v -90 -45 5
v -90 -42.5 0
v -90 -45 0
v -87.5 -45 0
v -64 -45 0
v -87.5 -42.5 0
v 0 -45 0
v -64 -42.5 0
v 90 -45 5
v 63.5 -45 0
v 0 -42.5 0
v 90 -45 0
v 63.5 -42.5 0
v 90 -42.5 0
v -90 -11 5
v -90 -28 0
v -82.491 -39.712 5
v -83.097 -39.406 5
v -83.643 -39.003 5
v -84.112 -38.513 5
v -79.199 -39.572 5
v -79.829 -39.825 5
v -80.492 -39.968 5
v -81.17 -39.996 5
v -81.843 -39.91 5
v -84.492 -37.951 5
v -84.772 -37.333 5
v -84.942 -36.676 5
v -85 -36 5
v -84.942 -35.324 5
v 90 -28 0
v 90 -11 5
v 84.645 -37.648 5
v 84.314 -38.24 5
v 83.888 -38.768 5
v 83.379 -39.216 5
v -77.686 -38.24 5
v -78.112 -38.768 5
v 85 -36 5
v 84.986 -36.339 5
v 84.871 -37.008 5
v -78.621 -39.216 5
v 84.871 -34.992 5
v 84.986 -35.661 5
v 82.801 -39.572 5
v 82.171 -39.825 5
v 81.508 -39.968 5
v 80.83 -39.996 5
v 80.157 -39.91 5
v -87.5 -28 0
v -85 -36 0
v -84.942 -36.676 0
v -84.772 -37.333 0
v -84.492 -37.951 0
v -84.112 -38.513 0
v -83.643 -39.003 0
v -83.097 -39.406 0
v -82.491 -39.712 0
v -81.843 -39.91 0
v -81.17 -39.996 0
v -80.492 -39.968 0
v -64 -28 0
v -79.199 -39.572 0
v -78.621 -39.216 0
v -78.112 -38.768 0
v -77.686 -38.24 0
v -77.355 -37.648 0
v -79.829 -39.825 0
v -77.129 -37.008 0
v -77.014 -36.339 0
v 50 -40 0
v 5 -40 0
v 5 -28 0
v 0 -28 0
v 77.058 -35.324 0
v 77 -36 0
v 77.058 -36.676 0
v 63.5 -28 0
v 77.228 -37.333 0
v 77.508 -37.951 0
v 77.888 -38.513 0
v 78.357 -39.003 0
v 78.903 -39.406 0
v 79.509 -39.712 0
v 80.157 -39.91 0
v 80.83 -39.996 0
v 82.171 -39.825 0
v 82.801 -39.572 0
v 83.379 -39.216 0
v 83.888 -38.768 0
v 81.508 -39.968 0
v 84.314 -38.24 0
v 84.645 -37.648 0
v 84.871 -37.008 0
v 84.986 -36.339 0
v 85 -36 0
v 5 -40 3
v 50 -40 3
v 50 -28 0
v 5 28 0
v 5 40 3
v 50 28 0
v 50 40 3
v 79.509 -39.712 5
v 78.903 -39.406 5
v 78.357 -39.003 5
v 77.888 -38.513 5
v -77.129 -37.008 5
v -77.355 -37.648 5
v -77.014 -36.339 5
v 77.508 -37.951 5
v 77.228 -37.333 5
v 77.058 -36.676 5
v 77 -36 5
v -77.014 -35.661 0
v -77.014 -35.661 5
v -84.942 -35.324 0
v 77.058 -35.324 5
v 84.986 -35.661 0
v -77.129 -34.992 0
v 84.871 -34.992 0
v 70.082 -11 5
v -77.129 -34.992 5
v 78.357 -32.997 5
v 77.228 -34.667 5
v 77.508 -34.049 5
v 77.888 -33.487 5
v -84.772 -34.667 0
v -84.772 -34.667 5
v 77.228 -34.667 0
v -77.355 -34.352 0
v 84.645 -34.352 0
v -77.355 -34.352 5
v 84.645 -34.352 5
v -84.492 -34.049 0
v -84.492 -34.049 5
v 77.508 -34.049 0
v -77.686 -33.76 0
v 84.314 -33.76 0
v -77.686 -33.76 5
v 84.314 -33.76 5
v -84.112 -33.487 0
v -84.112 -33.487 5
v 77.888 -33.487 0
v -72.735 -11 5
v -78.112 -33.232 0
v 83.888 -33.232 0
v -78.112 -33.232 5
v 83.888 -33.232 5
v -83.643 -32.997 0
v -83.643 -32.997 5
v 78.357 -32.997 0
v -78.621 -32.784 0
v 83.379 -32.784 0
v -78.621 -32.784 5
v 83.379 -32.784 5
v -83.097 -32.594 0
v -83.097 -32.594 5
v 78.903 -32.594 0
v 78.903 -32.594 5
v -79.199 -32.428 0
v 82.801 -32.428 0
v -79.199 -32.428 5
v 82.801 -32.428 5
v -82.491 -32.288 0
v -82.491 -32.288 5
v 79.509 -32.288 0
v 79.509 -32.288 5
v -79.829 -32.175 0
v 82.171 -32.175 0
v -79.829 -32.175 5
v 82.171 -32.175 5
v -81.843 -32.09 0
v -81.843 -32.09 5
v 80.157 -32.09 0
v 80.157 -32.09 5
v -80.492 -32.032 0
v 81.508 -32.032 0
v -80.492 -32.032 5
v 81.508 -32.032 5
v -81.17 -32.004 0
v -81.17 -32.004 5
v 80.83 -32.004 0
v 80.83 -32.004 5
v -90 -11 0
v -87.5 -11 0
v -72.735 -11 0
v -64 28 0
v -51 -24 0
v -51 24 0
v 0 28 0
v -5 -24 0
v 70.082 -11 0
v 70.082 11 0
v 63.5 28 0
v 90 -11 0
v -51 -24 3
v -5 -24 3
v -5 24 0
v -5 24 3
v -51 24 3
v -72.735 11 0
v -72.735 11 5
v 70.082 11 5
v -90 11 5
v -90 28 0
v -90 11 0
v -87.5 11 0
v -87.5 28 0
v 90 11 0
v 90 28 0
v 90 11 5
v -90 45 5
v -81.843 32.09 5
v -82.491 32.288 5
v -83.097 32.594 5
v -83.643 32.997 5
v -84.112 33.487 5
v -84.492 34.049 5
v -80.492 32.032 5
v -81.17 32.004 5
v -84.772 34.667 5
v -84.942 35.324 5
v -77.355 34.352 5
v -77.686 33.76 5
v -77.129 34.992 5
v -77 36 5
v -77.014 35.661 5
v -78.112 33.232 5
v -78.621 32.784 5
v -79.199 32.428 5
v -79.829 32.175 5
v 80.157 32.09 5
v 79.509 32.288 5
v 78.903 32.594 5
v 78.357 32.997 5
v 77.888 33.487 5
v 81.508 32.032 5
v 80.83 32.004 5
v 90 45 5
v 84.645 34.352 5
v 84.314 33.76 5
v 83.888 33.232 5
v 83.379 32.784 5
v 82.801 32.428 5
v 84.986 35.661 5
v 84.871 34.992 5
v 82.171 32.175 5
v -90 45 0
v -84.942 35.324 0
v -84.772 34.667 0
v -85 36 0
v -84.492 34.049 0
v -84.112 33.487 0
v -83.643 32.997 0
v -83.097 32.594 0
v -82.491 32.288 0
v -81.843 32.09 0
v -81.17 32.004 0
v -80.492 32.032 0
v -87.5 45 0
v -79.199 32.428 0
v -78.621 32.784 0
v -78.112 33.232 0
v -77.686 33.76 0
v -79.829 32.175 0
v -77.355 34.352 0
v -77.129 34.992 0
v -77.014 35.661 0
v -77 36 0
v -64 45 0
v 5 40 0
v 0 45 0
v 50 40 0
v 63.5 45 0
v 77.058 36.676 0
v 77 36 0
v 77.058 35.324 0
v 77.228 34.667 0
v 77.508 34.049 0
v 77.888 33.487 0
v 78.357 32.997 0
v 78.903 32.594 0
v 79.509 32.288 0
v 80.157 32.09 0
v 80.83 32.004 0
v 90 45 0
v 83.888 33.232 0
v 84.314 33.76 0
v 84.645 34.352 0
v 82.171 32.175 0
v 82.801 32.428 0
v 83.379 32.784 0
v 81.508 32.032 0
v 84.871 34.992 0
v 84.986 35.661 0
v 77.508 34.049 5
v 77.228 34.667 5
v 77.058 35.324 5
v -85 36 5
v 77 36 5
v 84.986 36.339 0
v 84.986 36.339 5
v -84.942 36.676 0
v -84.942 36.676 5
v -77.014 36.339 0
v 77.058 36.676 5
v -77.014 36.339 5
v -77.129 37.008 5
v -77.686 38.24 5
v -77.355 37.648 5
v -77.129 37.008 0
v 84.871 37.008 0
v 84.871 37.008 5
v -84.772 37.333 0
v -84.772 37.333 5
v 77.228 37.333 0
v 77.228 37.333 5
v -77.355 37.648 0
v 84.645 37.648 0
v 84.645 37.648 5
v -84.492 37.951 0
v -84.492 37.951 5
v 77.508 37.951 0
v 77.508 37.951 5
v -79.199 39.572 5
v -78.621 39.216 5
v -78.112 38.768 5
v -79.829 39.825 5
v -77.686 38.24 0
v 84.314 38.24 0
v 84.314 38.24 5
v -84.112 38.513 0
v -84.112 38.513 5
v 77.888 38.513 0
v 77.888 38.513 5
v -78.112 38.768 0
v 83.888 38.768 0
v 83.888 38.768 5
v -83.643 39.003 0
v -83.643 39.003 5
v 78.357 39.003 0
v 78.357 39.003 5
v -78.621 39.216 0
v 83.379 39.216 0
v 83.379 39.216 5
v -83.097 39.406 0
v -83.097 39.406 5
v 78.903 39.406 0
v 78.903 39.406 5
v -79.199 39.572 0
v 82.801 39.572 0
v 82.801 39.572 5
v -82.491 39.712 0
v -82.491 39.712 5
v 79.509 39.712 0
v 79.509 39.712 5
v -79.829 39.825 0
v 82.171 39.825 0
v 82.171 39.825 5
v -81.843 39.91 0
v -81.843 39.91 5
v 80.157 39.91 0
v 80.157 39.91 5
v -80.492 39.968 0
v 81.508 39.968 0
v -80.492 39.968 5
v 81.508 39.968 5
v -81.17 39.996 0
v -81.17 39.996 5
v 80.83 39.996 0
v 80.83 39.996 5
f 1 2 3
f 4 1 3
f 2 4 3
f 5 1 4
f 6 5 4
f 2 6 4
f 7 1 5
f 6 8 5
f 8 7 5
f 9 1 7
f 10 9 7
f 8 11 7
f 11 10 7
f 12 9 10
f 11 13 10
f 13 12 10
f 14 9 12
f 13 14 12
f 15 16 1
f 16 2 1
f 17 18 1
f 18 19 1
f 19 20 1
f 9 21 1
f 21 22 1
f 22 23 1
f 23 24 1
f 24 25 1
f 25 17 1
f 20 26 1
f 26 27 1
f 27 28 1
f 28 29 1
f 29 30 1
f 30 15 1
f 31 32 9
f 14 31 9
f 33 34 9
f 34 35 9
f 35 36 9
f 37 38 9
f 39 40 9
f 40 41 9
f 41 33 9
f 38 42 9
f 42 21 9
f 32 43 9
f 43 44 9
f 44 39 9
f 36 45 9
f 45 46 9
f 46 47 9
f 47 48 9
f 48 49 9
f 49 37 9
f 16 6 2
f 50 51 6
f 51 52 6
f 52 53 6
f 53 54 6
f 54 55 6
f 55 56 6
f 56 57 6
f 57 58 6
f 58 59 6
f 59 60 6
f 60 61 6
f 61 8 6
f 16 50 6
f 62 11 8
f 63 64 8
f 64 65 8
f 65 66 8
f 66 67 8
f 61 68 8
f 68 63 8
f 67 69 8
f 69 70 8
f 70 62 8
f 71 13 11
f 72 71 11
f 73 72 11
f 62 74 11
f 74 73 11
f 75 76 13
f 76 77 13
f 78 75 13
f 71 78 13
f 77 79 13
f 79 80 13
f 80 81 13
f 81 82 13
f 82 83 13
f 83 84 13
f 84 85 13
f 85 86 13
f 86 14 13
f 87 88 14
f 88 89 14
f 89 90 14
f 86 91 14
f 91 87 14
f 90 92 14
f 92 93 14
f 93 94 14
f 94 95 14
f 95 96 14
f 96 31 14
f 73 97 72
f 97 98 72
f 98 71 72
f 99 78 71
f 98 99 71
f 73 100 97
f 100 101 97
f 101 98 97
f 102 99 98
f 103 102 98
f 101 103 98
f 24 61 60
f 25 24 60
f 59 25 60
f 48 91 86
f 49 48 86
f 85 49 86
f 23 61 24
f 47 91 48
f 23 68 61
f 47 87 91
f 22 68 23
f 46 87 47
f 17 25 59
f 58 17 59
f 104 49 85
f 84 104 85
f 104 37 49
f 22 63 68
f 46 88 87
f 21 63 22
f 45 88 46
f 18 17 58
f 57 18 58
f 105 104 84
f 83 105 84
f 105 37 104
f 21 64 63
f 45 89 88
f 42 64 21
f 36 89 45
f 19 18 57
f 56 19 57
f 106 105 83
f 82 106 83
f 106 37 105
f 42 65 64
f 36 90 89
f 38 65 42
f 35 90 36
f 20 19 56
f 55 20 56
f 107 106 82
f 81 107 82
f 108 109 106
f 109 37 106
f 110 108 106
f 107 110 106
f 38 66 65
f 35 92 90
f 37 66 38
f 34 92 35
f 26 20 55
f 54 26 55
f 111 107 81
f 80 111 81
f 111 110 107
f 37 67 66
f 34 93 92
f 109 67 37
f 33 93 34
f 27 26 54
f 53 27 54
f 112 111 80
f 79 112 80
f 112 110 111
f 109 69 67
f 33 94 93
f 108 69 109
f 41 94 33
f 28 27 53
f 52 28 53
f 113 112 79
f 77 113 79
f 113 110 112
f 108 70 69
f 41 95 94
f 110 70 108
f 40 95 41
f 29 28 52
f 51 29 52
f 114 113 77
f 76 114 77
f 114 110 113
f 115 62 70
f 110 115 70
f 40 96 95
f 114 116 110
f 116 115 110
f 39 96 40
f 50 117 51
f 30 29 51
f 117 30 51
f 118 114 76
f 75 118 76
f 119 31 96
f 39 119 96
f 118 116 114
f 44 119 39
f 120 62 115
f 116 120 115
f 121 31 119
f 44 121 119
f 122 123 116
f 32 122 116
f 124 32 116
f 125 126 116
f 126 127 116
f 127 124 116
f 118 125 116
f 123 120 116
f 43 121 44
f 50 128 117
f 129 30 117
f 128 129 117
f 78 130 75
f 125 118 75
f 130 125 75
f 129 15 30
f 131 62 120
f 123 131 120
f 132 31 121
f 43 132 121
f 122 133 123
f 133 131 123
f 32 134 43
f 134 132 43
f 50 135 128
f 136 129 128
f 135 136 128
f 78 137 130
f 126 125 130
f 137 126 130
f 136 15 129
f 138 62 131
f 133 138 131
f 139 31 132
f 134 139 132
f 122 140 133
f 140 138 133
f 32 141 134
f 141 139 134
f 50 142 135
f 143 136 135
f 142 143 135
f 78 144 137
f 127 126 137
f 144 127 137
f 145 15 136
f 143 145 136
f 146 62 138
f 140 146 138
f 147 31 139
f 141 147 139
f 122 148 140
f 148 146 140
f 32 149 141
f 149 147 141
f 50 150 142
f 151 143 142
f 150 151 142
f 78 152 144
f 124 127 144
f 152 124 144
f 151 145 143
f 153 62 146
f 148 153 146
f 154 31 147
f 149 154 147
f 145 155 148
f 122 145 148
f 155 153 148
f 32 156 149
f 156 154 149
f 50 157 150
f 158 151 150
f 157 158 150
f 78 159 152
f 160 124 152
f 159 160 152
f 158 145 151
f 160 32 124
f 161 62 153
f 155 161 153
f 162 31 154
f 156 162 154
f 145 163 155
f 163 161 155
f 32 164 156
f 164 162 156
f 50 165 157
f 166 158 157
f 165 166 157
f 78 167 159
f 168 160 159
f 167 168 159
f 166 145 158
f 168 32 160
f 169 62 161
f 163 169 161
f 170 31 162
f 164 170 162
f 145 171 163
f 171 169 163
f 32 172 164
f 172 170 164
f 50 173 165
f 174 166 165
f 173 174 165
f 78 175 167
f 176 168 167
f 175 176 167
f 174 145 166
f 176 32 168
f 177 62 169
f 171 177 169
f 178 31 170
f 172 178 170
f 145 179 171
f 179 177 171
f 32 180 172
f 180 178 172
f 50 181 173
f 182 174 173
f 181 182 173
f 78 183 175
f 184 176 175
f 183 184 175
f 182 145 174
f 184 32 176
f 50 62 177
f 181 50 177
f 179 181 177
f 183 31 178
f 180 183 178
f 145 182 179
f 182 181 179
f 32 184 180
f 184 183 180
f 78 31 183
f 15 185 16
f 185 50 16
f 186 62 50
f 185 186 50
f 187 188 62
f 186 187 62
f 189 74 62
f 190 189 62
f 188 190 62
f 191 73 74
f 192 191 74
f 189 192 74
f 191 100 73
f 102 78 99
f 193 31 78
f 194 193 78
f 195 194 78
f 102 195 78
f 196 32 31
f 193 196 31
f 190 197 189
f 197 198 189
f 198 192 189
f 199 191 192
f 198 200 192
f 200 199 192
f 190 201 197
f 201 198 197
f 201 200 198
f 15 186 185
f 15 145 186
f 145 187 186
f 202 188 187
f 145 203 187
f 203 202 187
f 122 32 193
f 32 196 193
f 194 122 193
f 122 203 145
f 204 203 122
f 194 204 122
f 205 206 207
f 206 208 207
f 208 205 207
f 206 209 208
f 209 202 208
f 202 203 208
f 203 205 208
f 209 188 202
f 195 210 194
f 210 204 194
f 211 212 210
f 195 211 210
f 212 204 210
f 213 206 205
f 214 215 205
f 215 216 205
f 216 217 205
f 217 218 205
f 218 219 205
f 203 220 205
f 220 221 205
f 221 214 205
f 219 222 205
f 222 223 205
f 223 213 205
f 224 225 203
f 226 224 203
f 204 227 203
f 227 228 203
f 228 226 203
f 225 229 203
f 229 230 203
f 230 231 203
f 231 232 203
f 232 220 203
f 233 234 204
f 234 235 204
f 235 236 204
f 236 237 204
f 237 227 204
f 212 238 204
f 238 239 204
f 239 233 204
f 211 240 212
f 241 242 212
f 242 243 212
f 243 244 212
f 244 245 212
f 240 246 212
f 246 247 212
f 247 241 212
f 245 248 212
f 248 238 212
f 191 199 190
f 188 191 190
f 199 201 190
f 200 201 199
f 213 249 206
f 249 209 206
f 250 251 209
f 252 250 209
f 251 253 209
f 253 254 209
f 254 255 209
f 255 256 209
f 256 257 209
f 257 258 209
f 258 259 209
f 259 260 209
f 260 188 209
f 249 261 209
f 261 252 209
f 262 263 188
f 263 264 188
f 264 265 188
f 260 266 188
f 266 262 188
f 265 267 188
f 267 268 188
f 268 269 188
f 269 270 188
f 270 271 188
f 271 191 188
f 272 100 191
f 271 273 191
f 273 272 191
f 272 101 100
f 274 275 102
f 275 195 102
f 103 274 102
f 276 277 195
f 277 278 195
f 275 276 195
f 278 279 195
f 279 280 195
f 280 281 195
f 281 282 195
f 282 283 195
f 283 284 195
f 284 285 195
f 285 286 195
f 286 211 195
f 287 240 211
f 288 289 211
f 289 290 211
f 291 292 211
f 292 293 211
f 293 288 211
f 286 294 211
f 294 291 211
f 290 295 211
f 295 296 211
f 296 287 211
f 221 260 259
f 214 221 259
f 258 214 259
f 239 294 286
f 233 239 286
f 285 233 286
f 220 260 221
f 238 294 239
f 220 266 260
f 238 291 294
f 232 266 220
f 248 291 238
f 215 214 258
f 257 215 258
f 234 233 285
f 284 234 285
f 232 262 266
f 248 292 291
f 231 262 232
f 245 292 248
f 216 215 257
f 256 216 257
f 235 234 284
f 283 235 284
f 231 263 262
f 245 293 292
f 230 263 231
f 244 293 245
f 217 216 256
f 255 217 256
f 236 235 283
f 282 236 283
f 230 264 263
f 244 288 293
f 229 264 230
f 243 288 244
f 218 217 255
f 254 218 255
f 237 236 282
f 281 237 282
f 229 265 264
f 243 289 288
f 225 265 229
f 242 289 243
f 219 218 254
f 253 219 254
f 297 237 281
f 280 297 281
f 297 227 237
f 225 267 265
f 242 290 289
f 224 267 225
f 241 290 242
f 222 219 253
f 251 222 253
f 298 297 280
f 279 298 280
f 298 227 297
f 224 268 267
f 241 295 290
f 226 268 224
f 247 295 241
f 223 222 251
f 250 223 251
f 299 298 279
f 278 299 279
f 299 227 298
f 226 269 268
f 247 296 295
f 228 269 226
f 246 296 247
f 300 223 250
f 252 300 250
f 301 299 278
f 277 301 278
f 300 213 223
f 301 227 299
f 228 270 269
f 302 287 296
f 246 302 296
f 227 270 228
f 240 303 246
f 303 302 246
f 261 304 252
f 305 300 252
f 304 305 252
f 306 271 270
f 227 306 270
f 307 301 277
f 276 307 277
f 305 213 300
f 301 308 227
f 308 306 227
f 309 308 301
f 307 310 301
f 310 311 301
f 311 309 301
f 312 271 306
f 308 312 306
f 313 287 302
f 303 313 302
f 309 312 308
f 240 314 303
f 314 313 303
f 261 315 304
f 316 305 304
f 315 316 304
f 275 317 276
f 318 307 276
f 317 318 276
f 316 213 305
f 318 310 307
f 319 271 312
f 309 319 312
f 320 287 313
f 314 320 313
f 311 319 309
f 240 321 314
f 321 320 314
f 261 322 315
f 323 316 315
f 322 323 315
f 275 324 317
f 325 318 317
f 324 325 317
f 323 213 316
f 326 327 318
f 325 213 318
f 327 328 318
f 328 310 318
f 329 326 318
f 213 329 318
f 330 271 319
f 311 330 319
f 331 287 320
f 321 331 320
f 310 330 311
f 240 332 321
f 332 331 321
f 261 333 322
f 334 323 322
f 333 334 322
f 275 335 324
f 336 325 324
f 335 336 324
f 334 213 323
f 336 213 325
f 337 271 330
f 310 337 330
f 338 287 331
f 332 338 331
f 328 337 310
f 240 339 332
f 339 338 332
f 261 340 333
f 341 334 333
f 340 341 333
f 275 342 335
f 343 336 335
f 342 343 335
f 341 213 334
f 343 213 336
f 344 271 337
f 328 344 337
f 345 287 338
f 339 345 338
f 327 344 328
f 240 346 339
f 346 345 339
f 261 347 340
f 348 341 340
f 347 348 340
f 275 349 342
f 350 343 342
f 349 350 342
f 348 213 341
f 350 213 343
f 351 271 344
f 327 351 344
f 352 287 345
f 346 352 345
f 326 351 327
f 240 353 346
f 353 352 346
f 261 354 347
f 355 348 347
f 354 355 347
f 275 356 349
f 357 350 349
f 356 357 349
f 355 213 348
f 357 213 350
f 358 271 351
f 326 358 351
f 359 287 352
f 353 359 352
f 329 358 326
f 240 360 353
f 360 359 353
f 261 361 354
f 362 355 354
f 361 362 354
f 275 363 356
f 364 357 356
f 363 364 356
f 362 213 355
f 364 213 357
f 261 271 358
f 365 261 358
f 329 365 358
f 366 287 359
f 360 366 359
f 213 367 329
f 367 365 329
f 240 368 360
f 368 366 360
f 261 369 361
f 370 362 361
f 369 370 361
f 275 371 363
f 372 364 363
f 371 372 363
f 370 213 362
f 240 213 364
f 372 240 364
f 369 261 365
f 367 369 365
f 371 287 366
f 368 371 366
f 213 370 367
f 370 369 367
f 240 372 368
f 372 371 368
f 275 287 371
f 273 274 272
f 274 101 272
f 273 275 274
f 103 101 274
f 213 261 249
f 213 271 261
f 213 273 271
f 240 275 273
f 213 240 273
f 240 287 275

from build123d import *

# Parameters (mm, degrees)
SKETCH1_W           = 180
SKETCH1_H           = 90
BOSS_EXTRUDE1_DEPTH = 5
SKETCH5_W           = 15.917599426
SKETCH5_H           = 22
SKETCH5_W_2         = 13.264666189
CUT_EXTRUDE3_DEPTH  = 101.747208398
SKETCH7_W           = 4
SKETCH7_H           = 22
CUT_EXTRUDE13_DEPTH = 101.747208398
SKETCH8_R           = 4
CUT_EXTRUDE14_DEPTH = 101.747208398
SKETCH9_W           = 45
SKETCH9_H           = 80
CUT_EXTRUDE15_DEPTH = 3
SKETCH10_W          = 46
SKETCH10_H          = 48
CUT_EXTRUDE16_DEPTH = 3


with BuildPart() as part:
    # Sketch1 → Boss-Extrude1 (new body)
    with BuildSketch(Plane.XY):
        Rectangle(SKETCH1_W, SKETCH1_H)
    extrude(amount=BOSS_EXTRUDE1_DEPTH)

    # Sketch5 → Cut-Extrude3 (cut, through all)
    with BuildSketch(Plane(origin=(0, 0, 0), x_dir=(-1, 0, 0), z_dir=(0, 0, -1))):
        with Locations((-82.041200287, 0)):
            Rectangle(SKETCH5_W, SKETCH5_H)
        with Locations((83.367666906, 0)):
            Rectangle(SKETCH5_W_2, SKETCH5_H)
    extrude(amount=-CUT_EXTRUDE3_DEPTH, mode=Mode.SUBTRACT)

    # Sketch7 → Cut-Extrude13 (cut, through all)
    with BuildSketch(Plane(origin=(0, 0, 0), x_dir=(-1, 0, 0), z_dir=(0, 0, -1))):
        with Locations((-72.082400574, 0)):
            Rectangle(SKETCH7_W, SKETCH7_H)
        with Locations((74.735333811, 0)):
            Rectangle(SKETCH7_W, SKETCH7_H)
    extrude(amount=-CUT_EXTRUDE13_DEPTH, mode=Mode.SUBTRACT)

    # Sketch8 → Cut-Extrude14 (cut, through all)
    with BuildSketch(Plane(origin=(0, 0, 0), x_dir=(-1, 0, 0), z_dir=(0, 0, -1))):
        with Locations((-81, 36)):
            Circle(SKETCH8_R)
        with Locations(Location((81, 36, 0), (0, 0, 180))):
            Circle(SKETCH8_R)
        with Locations((81, -36)):
            Circle(SKETCH8_R)
        with Locations(Location((-81, -36, 0), (0, 0, 180))):
            Circle(SKETCH8_R)
    extrude(amount=-CUT_EXTRUDE14_DEPTH, mode=Mode.SUBTRACT)

    # Sketch9 → Cut-Extrude15 (cut)
    with BuildSketch(Plane(origin=(0, 0, 0), x_dir=(-1, 0, 0), z_dir=(0, 0, -1))):
        with Locations((-27.5, 0)):
            Rectangle(SKETCH9_W, SKETCH9_H)
    extrude(amount=-CUT_EXTRUDE15_DEPTH, mode=Mode.SUBTRACT)

    # Sketch10 → Cut-Extrude16 (cut)
    with BuildSketch(Plane(origin=(0, 0, 0), x_dir=(-1, 0, 0), z_dir=(0, 0, -1))):
        with Locations((28, 0)):
            Rectangle(SKETCH10_W, SKETCH10_H)
    extrude(amount=-CUT_EXTRUDE16_DEPTH, mode=Mode.SUBTRACT)


solid = part.part
